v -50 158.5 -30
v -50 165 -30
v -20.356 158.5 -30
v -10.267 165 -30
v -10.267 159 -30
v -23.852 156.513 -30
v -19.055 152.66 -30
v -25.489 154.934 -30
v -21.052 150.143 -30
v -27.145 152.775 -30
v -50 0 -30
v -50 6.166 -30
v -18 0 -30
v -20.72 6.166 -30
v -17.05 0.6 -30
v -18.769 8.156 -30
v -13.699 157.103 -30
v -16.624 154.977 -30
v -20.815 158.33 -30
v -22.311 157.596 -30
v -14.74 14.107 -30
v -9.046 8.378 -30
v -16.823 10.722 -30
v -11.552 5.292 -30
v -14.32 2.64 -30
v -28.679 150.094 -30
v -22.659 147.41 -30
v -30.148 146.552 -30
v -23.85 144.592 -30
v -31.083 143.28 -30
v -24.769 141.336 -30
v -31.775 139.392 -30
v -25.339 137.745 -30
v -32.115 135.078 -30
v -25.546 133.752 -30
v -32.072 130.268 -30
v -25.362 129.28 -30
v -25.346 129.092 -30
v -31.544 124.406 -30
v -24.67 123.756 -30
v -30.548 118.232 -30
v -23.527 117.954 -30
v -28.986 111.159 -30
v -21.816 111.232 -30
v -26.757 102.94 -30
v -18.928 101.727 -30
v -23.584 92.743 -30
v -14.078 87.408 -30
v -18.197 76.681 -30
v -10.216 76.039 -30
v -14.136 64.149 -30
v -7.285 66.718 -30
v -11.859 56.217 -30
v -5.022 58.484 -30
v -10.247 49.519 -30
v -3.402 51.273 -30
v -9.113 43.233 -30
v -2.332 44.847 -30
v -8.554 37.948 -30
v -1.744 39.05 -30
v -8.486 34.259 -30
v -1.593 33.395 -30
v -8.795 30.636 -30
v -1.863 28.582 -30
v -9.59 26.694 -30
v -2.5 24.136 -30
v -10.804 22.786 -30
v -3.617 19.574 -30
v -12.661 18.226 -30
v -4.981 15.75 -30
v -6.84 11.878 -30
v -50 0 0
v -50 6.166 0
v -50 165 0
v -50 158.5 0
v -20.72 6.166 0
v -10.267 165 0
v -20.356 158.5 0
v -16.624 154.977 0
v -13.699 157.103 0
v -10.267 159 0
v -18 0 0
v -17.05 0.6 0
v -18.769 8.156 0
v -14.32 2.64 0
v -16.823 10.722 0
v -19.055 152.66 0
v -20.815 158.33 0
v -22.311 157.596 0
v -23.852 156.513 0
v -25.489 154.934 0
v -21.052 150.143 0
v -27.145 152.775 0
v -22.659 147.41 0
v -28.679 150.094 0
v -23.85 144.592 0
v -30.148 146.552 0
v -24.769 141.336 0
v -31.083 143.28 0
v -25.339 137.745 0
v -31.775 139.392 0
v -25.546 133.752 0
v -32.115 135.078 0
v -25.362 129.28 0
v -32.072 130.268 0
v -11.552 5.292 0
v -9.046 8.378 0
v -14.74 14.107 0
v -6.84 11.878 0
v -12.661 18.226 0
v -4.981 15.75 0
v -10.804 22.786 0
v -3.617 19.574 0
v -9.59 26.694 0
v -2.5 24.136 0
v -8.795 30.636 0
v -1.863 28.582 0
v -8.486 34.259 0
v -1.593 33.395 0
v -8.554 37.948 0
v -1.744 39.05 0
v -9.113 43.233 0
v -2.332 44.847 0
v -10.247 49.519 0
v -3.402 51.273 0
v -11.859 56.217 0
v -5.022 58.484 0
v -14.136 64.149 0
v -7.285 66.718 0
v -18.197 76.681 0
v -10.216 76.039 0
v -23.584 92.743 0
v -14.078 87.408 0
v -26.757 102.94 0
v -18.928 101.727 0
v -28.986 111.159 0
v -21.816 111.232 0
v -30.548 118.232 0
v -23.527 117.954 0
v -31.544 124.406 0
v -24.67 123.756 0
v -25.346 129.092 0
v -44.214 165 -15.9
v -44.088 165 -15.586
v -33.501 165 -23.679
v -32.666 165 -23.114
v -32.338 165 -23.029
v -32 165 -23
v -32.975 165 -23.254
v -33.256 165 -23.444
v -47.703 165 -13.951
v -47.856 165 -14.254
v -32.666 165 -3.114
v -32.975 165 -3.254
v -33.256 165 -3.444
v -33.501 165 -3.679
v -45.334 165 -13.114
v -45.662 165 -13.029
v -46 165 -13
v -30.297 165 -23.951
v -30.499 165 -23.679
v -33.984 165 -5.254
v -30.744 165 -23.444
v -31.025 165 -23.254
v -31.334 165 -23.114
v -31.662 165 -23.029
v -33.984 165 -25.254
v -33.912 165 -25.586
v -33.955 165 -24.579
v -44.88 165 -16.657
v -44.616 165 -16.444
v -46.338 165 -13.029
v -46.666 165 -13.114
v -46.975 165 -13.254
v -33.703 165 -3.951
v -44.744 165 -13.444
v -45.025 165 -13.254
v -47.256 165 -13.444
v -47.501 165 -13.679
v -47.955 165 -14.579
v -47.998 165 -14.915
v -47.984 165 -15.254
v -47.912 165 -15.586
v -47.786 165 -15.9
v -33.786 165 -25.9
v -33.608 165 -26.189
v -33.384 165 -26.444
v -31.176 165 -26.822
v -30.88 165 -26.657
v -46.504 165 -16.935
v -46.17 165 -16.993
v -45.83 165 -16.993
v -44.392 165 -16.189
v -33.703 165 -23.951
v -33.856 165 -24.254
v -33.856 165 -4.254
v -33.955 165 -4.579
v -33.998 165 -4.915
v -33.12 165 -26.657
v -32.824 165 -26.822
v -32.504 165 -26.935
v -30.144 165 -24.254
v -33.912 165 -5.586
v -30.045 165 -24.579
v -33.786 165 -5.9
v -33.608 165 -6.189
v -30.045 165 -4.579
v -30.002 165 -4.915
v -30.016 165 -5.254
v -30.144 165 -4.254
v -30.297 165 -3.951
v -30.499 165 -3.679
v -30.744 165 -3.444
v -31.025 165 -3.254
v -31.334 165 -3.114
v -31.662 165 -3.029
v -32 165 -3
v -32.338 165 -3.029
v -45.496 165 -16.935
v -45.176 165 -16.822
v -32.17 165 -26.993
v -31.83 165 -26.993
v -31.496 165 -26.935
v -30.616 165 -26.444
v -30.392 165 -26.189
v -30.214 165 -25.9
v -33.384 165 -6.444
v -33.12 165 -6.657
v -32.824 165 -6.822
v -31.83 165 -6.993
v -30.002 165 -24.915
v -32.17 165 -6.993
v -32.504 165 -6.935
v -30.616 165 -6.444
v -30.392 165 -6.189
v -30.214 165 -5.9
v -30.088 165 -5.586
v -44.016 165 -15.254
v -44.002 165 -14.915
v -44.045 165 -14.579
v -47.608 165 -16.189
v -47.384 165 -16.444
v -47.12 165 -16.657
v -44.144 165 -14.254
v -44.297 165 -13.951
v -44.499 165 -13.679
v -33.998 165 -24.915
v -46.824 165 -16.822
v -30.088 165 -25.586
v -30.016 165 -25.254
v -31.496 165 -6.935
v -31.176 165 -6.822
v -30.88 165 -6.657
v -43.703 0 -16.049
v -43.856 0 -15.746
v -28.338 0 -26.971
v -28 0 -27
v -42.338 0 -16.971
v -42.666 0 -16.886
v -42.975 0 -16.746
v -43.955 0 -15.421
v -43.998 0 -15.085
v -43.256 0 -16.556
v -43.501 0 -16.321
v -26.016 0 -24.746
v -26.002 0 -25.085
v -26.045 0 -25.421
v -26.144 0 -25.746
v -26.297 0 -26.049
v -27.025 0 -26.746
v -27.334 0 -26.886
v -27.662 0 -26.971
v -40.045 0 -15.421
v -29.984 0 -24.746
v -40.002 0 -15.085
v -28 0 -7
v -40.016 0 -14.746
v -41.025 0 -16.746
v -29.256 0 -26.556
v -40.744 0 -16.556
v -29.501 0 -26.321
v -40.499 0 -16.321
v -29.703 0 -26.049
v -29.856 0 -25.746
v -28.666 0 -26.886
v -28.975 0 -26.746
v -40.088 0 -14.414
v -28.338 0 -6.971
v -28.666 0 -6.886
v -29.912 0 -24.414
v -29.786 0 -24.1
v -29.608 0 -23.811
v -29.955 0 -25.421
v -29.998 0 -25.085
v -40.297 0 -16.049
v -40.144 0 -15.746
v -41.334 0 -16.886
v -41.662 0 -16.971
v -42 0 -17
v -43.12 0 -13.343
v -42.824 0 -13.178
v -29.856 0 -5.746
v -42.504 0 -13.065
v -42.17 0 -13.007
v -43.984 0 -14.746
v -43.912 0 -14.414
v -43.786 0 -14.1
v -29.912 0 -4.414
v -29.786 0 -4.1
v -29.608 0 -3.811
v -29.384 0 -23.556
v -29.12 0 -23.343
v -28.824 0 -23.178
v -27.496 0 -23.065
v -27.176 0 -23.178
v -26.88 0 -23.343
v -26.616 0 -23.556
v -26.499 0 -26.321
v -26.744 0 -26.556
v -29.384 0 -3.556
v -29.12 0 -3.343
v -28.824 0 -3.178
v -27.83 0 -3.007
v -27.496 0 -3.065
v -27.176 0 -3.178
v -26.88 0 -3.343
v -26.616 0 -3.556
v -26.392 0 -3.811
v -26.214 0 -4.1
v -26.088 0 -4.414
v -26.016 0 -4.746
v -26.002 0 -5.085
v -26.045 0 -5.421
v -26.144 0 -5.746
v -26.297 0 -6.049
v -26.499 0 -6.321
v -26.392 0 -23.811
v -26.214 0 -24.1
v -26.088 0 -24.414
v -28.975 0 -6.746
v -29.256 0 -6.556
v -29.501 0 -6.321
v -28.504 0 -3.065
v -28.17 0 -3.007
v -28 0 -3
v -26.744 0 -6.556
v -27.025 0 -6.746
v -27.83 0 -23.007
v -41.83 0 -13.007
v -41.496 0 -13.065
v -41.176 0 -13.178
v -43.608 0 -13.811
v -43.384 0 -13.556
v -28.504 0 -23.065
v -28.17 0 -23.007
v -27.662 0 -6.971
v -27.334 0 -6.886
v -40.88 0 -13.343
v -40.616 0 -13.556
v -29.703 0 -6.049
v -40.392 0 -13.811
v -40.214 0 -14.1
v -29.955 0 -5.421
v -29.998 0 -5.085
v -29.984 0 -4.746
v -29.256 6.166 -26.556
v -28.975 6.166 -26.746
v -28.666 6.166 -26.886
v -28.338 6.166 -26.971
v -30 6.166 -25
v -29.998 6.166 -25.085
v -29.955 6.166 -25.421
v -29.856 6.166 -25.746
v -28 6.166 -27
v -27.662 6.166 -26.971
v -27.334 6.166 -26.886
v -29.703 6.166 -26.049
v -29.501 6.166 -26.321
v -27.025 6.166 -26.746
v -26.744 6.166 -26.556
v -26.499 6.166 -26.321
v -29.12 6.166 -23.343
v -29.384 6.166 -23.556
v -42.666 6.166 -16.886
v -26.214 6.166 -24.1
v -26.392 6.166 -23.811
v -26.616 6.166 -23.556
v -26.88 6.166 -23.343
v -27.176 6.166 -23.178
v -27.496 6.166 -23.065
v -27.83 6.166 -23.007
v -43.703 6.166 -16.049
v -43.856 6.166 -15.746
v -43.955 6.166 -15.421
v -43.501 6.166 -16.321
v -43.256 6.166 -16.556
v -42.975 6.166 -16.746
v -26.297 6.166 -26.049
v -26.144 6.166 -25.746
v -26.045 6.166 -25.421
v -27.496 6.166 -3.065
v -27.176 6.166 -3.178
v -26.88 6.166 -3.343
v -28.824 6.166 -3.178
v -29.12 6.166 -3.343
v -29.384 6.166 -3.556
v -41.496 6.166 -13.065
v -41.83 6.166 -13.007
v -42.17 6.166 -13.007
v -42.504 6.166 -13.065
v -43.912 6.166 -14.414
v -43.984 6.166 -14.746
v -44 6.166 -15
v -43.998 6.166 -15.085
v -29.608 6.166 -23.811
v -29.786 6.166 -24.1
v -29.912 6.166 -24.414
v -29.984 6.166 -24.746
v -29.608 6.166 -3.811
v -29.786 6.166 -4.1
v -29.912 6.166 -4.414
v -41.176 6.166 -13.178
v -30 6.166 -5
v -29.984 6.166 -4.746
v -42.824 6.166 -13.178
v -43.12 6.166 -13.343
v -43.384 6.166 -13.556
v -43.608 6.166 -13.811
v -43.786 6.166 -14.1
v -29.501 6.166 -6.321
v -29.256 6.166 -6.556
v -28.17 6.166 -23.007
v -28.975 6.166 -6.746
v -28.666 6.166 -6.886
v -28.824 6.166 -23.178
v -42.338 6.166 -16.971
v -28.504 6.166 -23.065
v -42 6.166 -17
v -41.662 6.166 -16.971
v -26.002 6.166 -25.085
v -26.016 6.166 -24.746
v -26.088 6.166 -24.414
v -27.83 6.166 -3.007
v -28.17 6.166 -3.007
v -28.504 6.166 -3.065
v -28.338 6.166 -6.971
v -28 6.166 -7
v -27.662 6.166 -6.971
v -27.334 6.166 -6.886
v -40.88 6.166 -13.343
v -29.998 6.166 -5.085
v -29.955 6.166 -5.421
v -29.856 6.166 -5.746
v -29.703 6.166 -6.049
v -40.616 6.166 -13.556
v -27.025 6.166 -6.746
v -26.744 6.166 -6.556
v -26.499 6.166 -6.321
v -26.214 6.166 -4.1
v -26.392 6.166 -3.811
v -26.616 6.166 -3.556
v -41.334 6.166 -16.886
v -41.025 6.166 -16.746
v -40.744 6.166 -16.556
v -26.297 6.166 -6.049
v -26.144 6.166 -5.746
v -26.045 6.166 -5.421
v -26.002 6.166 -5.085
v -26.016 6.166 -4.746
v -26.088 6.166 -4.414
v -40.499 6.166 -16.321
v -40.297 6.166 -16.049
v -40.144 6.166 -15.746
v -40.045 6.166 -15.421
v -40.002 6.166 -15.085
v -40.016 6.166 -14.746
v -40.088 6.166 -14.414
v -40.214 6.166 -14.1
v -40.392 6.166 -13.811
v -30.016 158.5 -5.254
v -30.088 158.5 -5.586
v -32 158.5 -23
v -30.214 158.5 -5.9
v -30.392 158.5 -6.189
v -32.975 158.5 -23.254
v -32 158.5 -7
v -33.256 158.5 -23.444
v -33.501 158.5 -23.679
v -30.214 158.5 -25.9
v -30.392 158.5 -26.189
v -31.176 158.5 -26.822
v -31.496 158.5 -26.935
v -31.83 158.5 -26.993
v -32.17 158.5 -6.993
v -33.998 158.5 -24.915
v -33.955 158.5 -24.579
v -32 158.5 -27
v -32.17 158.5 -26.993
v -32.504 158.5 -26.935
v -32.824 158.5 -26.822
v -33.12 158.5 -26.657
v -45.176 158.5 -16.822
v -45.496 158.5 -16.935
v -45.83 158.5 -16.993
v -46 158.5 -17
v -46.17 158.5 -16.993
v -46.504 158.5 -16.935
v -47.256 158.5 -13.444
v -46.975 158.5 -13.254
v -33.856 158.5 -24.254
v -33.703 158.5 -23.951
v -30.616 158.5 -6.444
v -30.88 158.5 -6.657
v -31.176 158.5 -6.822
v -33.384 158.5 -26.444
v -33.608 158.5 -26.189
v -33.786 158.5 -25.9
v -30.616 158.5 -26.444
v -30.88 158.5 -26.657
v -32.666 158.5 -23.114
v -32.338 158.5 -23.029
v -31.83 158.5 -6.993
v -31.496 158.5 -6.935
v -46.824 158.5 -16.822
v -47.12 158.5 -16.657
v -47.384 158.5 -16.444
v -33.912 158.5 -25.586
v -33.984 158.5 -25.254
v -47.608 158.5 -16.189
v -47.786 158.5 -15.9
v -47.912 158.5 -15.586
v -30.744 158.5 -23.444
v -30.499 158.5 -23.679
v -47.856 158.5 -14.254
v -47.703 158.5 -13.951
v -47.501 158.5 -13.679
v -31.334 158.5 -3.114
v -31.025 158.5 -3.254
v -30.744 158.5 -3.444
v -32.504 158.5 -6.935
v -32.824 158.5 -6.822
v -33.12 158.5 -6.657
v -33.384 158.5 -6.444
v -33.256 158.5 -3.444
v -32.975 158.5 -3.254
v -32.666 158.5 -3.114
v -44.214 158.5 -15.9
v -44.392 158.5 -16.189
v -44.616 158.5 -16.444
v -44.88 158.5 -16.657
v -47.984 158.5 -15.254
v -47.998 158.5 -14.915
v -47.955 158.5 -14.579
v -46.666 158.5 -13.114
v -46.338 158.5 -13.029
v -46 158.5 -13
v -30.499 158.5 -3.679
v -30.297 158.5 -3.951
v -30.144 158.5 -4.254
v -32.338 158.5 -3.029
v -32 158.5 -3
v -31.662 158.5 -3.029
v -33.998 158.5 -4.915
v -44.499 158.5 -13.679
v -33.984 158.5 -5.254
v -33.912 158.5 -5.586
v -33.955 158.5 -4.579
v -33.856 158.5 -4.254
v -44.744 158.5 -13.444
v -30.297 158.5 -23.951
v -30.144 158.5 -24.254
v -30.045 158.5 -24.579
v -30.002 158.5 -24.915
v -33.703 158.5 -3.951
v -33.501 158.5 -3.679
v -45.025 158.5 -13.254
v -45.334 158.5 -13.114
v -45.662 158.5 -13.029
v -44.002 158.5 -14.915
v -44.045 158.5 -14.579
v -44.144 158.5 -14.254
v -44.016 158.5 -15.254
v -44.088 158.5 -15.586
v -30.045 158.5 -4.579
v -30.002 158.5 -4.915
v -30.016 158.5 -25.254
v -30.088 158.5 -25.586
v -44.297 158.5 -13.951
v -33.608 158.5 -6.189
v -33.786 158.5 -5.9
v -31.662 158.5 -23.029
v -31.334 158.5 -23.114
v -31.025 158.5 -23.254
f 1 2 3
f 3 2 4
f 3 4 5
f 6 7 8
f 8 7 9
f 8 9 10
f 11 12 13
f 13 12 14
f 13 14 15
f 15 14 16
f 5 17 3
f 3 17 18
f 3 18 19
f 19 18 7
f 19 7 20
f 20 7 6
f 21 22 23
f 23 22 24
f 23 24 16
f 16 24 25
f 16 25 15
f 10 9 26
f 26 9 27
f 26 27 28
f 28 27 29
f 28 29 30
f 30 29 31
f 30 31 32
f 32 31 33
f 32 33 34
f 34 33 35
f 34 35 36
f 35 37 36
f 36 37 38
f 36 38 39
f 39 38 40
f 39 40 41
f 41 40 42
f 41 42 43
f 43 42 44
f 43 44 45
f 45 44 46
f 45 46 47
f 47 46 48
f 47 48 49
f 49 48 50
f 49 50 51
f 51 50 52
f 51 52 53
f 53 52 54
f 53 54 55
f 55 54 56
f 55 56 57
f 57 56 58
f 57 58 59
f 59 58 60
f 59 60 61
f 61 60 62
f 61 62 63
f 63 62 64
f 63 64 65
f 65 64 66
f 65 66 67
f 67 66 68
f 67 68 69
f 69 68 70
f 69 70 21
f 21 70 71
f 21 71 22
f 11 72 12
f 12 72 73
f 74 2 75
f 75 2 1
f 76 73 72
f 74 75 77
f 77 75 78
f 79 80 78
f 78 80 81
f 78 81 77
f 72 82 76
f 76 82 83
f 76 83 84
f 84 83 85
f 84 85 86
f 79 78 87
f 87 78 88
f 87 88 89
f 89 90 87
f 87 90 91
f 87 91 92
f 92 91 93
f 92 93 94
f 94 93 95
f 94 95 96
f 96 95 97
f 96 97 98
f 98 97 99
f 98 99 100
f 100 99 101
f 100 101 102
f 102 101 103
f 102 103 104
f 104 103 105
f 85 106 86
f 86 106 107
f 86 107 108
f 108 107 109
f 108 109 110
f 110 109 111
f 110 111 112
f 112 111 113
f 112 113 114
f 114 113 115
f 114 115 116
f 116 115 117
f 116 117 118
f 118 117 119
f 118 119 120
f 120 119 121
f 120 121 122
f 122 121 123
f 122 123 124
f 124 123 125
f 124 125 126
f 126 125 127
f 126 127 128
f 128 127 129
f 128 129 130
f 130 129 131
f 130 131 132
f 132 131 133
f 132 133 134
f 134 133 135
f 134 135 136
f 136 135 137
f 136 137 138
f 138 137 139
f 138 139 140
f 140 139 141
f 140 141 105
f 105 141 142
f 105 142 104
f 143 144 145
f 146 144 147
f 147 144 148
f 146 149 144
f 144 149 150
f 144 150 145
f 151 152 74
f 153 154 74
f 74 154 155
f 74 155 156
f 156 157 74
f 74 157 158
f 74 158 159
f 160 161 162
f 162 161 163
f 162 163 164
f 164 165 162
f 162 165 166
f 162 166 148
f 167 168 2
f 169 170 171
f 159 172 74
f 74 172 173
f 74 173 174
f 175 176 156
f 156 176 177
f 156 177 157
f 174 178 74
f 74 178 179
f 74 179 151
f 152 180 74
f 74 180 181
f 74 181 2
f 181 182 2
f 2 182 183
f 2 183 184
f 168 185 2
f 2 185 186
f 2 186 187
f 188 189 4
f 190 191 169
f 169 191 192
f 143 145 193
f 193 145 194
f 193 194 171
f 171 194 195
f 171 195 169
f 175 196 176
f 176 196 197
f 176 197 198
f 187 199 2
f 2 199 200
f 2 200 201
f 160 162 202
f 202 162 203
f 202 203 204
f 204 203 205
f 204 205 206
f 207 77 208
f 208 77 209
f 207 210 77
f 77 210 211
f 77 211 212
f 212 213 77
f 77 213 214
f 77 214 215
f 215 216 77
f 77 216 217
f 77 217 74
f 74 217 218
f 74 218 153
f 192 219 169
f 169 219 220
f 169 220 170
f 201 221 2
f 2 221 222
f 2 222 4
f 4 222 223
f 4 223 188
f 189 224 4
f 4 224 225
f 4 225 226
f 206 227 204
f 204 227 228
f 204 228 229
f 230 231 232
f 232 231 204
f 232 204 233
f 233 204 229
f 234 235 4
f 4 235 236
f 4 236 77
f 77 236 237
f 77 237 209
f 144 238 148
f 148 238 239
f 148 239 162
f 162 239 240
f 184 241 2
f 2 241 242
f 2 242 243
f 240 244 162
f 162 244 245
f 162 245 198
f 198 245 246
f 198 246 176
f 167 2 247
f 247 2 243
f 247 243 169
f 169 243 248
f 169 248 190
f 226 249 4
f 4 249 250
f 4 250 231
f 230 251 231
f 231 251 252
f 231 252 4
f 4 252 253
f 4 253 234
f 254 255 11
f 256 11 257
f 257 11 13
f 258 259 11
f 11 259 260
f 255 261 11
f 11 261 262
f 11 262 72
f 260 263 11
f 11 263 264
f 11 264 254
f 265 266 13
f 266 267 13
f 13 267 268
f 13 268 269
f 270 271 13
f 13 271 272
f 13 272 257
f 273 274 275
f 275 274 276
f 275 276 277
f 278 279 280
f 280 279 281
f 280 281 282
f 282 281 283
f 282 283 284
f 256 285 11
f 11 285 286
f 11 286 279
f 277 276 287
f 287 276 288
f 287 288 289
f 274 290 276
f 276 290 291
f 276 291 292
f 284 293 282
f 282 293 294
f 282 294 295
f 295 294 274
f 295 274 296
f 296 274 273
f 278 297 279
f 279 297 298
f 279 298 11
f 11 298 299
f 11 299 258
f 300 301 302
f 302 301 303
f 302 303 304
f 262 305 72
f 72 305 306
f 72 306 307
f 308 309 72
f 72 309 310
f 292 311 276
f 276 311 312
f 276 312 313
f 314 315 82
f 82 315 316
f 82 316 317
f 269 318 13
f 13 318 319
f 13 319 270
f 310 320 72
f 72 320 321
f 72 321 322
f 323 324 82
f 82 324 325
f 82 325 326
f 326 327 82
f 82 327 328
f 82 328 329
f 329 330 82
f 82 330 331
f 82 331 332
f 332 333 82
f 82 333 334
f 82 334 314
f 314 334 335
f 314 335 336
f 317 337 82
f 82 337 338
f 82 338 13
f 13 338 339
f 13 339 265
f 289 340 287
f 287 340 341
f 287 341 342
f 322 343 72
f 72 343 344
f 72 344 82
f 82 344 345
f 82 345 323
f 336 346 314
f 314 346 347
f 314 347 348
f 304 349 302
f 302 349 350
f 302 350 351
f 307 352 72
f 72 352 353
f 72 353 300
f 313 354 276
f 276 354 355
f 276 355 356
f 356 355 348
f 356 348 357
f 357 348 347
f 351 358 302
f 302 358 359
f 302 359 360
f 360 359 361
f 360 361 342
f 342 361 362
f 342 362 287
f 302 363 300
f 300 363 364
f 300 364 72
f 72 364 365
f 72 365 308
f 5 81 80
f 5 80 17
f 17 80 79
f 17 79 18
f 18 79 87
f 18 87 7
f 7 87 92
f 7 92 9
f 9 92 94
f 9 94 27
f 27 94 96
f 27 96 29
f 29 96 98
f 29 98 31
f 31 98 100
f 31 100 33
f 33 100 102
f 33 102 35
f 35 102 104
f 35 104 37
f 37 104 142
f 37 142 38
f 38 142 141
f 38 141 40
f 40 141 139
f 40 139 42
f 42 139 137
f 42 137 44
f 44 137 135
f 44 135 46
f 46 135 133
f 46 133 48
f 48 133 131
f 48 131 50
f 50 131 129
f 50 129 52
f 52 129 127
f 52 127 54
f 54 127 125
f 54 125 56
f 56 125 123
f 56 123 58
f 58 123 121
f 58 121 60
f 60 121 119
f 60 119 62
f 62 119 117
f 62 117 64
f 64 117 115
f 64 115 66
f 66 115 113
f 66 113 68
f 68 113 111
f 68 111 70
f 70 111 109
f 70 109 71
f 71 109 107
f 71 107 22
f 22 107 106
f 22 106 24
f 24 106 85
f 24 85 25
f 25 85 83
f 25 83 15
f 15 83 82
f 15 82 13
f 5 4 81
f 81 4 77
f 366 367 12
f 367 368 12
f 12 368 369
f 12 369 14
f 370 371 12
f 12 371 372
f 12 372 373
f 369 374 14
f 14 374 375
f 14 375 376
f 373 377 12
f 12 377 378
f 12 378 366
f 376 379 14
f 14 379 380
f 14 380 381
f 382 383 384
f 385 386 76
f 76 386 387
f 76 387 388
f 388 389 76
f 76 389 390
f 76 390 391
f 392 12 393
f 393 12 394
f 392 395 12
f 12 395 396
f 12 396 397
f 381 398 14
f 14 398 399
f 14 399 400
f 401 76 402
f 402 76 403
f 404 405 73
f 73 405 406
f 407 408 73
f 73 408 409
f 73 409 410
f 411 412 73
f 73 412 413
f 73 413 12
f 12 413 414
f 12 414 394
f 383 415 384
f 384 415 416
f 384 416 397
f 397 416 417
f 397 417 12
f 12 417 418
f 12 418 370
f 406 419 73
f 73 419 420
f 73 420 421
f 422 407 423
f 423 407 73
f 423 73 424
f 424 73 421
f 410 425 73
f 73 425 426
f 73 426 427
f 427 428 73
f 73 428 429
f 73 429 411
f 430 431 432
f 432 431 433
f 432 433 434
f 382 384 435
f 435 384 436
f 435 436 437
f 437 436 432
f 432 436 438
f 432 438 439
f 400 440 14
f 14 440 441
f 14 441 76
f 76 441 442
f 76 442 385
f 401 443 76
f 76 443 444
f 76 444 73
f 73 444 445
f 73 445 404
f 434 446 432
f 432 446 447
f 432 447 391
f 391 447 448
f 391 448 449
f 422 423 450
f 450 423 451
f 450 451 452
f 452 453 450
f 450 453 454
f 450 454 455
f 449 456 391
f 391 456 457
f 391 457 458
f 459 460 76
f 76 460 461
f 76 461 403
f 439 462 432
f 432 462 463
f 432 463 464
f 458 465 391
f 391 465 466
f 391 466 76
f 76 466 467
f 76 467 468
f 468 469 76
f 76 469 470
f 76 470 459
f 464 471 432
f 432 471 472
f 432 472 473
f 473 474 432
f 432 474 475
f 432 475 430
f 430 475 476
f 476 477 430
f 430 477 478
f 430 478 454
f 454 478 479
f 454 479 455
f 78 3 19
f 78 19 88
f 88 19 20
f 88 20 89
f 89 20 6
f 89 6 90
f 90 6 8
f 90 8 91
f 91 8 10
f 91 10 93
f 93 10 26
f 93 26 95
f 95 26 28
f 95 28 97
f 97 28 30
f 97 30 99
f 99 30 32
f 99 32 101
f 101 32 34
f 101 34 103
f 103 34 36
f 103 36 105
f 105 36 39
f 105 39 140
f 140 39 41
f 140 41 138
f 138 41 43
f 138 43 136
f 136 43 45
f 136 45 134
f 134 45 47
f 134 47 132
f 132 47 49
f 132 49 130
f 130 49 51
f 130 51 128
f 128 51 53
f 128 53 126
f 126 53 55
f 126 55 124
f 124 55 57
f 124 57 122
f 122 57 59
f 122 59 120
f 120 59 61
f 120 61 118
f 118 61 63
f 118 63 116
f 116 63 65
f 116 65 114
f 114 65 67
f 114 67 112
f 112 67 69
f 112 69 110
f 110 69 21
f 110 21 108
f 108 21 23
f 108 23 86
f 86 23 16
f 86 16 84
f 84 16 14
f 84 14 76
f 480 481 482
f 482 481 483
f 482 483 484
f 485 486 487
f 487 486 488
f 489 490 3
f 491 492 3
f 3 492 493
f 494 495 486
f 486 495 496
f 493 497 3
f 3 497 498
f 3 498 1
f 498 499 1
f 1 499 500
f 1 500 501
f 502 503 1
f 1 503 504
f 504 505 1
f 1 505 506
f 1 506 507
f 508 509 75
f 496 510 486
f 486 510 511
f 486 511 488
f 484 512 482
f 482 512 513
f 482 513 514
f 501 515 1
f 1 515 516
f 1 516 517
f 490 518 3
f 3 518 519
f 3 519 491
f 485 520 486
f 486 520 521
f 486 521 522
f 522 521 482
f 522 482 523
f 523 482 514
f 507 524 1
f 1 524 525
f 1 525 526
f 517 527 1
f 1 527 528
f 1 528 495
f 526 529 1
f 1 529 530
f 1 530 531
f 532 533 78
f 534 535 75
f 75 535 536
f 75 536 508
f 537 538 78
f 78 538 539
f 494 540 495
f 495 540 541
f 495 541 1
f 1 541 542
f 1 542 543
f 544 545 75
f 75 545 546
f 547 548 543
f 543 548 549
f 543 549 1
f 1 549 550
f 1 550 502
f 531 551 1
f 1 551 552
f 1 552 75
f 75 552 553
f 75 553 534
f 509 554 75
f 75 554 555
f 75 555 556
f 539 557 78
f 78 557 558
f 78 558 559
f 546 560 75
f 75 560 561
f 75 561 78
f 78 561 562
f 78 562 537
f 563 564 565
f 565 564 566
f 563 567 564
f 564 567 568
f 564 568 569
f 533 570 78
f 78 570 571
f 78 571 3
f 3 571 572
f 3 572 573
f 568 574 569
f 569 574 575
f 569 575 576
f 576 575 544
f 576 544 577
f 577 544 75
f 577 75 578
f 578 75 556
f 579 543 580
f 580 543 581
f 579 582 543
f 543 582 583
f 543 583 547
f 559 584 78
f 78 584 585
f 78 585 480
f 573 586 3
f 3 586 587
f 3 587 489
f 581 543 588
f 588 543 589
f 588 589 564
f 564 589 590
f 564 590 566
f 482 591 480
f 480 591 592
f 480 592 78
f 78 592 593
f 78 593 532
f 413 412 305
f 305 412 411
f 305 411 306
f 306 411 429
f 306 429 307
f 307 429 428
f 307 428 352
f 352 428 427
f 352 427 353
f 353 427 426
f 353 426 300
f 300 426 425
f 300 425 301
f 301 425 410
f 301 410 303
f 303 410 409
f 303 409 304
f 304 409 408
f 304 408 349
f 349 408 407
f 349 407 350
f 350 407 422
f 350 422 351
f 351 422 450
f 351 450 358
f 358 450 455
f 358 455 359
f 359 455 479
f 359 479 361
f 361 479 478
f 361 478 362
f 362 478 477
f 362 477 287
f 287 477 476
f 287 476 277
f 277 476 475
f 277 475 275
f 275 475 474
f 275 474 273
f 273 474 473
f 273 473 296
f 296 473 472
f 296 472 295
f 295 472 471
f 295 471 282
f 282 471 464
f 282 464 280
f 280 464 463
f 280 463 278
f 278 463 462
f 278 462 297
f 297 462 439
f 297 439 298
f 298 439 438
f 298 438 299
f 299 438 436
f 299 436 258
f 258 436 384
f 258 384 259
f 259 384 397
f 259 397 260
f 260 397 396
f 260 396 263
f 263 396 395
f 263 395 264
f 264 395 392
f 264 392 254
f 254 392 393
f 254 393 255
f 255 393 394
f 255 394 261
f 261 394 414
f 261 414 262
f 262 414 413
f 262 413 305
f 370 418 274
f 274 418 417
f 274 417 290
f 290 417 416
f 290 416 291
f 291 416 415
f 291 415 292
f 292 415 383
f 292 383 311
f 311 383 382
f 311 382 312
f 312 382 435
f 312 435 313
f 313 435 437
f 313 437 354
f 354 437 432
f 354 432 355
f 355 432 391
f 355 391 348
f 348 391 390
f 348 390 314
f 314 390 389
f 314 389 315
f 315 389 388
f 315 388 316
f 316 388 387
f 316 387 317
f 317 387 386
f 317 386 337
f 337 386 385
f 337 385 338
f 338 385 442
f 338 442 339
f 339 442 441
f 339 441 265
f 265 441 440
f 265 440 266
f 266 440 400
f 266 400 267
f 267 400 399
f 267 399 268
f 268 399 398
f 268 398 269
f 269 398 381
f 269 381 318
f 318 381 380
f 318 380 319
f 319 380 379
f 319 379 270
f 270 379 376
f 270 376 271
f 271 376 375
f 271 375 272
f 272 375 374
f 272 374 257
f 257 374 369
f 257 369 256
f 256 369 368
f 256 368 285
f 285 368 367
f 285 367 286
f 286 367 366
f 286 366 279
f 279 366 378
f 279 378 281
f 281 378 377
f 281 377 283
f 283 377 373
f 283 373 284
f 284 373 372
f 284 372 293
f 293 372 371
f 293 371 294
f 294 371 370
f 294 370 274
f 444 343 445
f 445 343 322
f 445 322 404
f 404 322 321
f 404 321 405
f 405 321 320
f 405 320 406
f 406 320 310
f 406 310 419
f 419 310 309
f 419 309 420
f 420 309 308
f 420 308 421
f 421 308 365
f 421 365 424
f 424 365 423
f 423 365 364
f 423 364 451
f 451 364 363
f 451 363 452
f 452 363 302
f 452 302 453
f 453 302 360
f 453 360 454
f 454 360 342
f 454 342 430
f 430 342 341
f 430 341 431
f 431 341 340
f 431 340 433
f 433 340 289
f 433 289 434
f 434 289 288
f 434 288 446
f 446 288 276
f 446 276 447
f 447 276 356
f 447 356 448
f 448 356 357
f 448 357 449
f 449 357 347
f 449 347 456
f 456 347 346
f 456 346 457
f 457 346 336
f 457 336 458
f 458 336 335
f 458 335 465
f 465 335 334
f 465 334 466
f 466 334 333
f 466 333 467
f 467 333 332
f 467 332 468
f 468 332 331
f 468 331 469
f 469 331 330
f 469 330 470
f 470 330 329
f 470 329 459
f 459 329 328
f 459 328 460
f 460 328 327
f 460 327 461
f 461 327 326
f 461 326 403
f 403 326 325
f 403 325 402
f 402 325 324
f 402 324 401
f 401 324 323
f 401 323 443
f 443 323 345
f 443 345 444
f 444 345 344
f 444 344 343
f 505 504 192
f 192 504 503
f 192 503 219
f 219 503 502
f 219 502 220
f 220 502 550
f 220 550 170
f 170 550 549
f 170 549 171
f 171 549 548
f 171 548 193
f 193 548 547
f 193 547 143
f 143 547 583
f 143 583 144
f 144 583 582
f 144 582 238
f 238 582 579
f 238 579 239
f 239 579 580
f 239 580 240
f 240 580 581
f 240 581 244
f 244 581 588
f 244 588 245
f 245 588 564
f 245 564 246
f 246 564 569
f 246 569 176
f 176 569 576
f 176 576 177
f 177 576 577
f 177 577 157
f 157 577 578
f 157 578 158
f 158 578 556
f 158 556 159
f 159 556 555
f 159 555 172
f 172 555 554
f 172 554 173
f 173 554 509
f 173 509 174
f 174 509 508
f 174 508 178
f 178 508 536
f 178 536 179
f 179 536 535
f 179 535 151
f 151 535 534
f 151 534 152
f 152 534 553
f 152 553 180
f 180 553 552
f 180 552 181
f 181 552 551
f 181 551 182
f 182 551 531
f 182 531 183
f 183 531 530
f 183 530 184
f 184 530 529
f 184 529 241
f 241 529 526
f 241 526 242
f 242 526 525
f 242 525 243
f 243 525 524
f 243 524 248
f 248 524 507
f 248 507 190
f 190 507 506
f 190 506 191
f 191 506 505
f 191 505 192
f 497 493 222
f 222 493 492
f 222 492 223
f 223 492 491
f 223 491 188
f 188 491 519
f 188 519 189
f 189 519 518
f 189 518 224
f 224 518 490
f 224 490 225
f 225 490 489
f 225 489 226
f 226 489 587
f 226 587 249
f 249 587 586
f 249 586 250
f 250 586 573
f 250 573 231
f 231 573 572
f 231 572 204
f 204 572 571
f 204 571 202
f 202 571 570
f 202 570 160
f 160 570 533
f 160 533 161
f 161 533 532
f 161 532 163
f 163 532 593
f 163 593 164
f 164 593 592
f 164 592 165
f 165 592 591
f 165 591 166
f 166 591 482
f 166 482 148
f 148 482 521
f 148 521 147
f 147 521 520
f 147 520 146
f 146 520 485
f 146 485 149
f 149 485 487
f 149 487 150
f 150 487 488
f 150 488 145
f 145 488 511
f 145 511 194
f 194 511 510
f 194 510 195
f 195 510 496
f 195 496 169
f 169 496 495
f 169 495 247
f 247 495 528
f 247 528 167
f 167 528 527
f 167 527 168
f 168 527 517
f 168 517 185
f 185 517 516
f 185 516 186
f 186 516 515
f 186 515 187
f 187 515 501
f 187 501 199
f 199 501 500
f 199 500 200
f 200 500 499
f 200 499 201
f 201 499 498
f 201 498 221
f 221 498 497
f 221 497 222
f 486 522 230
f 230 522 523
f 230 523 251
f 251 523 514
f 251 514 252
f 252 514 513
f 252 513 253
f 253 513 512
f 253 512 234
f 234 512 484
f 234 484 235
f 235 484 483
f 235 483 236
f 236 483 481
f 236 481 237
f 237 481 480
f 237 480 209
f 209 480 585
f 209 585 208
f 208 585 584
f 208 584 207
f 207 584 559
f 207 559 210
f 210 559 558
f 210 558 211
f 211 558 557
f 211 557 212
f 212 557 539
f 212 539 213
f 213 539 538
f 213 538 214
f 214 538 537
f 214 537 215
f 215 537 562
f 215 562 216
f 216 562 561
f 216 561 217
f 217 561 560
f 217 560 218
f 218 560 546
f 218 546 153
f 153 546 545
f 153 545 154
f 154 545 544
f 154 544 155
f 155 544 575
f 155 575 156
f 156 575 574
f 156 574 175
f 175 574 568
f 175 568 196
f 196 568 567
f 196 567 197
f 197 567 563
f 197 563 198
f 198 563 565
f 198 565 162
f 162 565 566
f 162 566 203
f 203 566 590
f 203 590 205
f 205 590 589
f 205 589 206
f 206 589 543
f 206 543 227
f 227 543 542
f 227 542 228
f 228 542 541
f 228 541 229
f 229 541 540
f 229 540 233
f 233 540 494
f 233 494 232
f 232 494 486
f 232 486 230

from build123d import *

# Parameters (mm, degrees)
SKETCH1_W               = 50
SKETCH1_H               = 30
BLOCK_DEPTH             = 165
CUT_EXTRUDE1_DEPTH      = 176
CUT_EXTRUDE2_DEPTH      = 176.00000014
CUT_EXTRUDE2_DEPTH_BACK = 176.00000014
CUT_EXTRUDE3_REACH      = 177
SKETCH4_R               = 2
CUT_EXTRUDE10_REACH     = 177
SKETCH6_R               = 2


with BuildPart() as part:
    # Sketch1 → block (new body)
    with BuildSketch(Plane(origin=(0, 0, 0), x_dir=(1, 0, 0), z_dir=(0, 1, 0))):
        with Locations((-25, 15)):
            Rectangle(SKETCH1_W, SKETCH1_H)
    extrude(amount=BLOCK_DEPTH)

    # Sketch2 → Cut-Extrude1 (cut, through all)
    with BuildSketch(Plane.XY):
        with BuildLine():
            Line((-10.266930768, 159), (-10.266930768, 165))
            Line((-10.266930768, 165), (0, 165))
            Line((0, 165), (0, 0))
            Line((0, 0), (-18, 0))
            add(Edge.make_bspline(
                [(-18, 0), (-10.65509128, 4.432537506), (21.096865897, 53.288885799), (-53.333910643, 138.279185217), (-10.266930768, 159)],
                knots=[0, 0, 0, 0, 0.153176096, 1, 1, 1, 1], degree=3))
        make_face()
    extrude(amount=-CUT_EXTRUDE1_DEPTH, mode=Mode.SUBTRACT)

    # Sketch3 → Cut-Extrude2 (cut, two sides: drawn at the far end of the back side and taken through both)
    with BuildSketch(Plane.XY.offset(-CUT_EXTRUDE2_DEPTH_BACK)):
        with BuildLine():
            Line((-50, 6.165602131), (-20.719865449, 6.165602131))
            add(Edge.make_bspline(
                [(-20.719865449, 6.165602131), (-16.417108632, 9.879860863), (-8.594555841, 25.292531348), (-7.124459178, 64.823223932), (-46.284378253, 128.924399551), (-24.281989056, 157.156211749), (-20.35592584, 158.5)],
                knots=[0.052572887, 0.052572887, 0.052572887, 0.052572887, 0.159086781, 0.252212072, 0.902535386, 1, 1, 1, 1], degree=3))
            Line((-20.35592584, 158.5), (-50, 158.5))
            Line((-50, 158.5), (-50, 6.165602131))
        make_face()
    extrude(amount=CUT_EXTRUDE2_DEPTH + CUT_EXTRUDE2_DEPTH_BACK, mode=Mode.SUBTRACT)

    # Sketch4 → Cut-Extrude3 (cut, up to next)
    with BuildSketch(Plane.XZ, mode=Mode.PRIVATE) as cut_extrude3_sk1:
        with Locations(Location((-42, -15, 0), (0, 0, 270))):
            Circle(SKETCH4_R)
    cut_extrude3_tool1 = extrude(cut_extrude3_sk1.sketch, amount=-CUT_EXTRUDE3_REACH, mode=Mode.PRIVATE) & part.part
    # Sketch4 → Cut-Extrude3 (cut, up to next)
    with BuildSketch(Plane.XZ, mode=Mode.PRIVATE) as cut_extrude3_sk2:
        with Locations(Location((-28, -25, 0), (0, 0, 270))):
            Circle(SKETCH4_R)
    cut_extrude3_tool2 = extrude(cut_extrude3_sk2.sketch, amount=-CUT_EXTRUDE3_REACH, mode=Mode.PRIVATE) & part.part
    # Sketch4 → Cut-Extrude3 (cut, up to next)
    with BuildSketch(Plane.XZ, mode=Mode.PRIVATE) as cut_extrude3_sk3:
        with Locations(Location((-28, -5, 0), (0, 0, 180))):
            Circle(SKETCH4_R)
    cut_extrude3_tool3 = extrude(cut_extrude3_sk3.sketch, amount=-CUT_EXTRUDE3_REACH, mode=Mode.PRIVATE) & part.part
    add(cut_extrude3_tool1.solids().sort_by_distance((-42, 0, -15))[0], mode=Mode.SUBTRACT)
    add(cut_extrude3_tool2.solids().sort_by_distance((-28, 0, -25))[0], mode=Mode.SUBTRACT)
    add(cut_extrude3_tool3.solids().sort_by_distance((-28, 0, -5))[0], mode=Mode.SUBTRACT)

    # Sketch6 → Cut-Extrude10 (cut, up to next)
    with BuildSketch(Plane(origin=(0, 165, 0), x_dir=(1, 0, 0), z_dir=(0, 1, 0)), mode=Mode.PRIVATE) as cut_extrude10_sk1:
        with Locations(Location((-46, 15, 0), (0, 0, 270))):
            Circle(SKETCH6_R)
    cut_extrude10_tool1 = extrude(cut_extrude10_sk1.sketch, amount=-CUT_EXTRUDE10_REACH, mode=Mode.PRIVATE) & part.part
    # Sketch6 → Cut-Extrude10 (cut, up to next)
    with BuildSketch(Plane(origin=(0, 165, 0), x_dir=(1, 0, 0), z_dir=(0, 1, 0)), mode=Mode.PRIVATE) as cut_extrude10_sk2:
        with Locations(Location((-32, 25, 0), (0, 0, 270))):
            Circle(SKETCH6_R)
    cut_extrude10_tool2 = extrude(cut_extrude10_sk2.sketch, amount=-CUT_EXTRUDE10_REACH, mode=Mode.PRIVATE) & part.part
    # Sketch6 → Cut-Extrude10 (cut, up to next)
    with BuildSketch(Plane(origin=(0, 165, 0), x_dir=(1, 0, 0), z_dir=(0, 1, 0)), mode=Mode.PRIVATE) as cut_extrude10_sk3:
        with Locations(Location((-32, 5, 0), (0, 0, 270))):
            Circle(SKETCH6_R)
    cut_extrude10_tool3 = extrude(cut_extrude10_sk3.sketch, amount=-CUT_EXTRUDE10_REACH, mode=Mode.PRIVATE) & part.part
    add(cut_extrude10_tool1.solids().sort_by_distance((-46, 165, -15))[0], mode=Mode.SUBTRACT)
    add(cut_extrude10_tool2.solids().sort_by_distance((-32, 165, -25))[0], mode=Mode.SUBTRACT)
    add(cut_extrude10_tool3.solids().sort_by_distance((-32, 165, -5))[0], mode=Mode.SUBTRACT)


solid = part.part
